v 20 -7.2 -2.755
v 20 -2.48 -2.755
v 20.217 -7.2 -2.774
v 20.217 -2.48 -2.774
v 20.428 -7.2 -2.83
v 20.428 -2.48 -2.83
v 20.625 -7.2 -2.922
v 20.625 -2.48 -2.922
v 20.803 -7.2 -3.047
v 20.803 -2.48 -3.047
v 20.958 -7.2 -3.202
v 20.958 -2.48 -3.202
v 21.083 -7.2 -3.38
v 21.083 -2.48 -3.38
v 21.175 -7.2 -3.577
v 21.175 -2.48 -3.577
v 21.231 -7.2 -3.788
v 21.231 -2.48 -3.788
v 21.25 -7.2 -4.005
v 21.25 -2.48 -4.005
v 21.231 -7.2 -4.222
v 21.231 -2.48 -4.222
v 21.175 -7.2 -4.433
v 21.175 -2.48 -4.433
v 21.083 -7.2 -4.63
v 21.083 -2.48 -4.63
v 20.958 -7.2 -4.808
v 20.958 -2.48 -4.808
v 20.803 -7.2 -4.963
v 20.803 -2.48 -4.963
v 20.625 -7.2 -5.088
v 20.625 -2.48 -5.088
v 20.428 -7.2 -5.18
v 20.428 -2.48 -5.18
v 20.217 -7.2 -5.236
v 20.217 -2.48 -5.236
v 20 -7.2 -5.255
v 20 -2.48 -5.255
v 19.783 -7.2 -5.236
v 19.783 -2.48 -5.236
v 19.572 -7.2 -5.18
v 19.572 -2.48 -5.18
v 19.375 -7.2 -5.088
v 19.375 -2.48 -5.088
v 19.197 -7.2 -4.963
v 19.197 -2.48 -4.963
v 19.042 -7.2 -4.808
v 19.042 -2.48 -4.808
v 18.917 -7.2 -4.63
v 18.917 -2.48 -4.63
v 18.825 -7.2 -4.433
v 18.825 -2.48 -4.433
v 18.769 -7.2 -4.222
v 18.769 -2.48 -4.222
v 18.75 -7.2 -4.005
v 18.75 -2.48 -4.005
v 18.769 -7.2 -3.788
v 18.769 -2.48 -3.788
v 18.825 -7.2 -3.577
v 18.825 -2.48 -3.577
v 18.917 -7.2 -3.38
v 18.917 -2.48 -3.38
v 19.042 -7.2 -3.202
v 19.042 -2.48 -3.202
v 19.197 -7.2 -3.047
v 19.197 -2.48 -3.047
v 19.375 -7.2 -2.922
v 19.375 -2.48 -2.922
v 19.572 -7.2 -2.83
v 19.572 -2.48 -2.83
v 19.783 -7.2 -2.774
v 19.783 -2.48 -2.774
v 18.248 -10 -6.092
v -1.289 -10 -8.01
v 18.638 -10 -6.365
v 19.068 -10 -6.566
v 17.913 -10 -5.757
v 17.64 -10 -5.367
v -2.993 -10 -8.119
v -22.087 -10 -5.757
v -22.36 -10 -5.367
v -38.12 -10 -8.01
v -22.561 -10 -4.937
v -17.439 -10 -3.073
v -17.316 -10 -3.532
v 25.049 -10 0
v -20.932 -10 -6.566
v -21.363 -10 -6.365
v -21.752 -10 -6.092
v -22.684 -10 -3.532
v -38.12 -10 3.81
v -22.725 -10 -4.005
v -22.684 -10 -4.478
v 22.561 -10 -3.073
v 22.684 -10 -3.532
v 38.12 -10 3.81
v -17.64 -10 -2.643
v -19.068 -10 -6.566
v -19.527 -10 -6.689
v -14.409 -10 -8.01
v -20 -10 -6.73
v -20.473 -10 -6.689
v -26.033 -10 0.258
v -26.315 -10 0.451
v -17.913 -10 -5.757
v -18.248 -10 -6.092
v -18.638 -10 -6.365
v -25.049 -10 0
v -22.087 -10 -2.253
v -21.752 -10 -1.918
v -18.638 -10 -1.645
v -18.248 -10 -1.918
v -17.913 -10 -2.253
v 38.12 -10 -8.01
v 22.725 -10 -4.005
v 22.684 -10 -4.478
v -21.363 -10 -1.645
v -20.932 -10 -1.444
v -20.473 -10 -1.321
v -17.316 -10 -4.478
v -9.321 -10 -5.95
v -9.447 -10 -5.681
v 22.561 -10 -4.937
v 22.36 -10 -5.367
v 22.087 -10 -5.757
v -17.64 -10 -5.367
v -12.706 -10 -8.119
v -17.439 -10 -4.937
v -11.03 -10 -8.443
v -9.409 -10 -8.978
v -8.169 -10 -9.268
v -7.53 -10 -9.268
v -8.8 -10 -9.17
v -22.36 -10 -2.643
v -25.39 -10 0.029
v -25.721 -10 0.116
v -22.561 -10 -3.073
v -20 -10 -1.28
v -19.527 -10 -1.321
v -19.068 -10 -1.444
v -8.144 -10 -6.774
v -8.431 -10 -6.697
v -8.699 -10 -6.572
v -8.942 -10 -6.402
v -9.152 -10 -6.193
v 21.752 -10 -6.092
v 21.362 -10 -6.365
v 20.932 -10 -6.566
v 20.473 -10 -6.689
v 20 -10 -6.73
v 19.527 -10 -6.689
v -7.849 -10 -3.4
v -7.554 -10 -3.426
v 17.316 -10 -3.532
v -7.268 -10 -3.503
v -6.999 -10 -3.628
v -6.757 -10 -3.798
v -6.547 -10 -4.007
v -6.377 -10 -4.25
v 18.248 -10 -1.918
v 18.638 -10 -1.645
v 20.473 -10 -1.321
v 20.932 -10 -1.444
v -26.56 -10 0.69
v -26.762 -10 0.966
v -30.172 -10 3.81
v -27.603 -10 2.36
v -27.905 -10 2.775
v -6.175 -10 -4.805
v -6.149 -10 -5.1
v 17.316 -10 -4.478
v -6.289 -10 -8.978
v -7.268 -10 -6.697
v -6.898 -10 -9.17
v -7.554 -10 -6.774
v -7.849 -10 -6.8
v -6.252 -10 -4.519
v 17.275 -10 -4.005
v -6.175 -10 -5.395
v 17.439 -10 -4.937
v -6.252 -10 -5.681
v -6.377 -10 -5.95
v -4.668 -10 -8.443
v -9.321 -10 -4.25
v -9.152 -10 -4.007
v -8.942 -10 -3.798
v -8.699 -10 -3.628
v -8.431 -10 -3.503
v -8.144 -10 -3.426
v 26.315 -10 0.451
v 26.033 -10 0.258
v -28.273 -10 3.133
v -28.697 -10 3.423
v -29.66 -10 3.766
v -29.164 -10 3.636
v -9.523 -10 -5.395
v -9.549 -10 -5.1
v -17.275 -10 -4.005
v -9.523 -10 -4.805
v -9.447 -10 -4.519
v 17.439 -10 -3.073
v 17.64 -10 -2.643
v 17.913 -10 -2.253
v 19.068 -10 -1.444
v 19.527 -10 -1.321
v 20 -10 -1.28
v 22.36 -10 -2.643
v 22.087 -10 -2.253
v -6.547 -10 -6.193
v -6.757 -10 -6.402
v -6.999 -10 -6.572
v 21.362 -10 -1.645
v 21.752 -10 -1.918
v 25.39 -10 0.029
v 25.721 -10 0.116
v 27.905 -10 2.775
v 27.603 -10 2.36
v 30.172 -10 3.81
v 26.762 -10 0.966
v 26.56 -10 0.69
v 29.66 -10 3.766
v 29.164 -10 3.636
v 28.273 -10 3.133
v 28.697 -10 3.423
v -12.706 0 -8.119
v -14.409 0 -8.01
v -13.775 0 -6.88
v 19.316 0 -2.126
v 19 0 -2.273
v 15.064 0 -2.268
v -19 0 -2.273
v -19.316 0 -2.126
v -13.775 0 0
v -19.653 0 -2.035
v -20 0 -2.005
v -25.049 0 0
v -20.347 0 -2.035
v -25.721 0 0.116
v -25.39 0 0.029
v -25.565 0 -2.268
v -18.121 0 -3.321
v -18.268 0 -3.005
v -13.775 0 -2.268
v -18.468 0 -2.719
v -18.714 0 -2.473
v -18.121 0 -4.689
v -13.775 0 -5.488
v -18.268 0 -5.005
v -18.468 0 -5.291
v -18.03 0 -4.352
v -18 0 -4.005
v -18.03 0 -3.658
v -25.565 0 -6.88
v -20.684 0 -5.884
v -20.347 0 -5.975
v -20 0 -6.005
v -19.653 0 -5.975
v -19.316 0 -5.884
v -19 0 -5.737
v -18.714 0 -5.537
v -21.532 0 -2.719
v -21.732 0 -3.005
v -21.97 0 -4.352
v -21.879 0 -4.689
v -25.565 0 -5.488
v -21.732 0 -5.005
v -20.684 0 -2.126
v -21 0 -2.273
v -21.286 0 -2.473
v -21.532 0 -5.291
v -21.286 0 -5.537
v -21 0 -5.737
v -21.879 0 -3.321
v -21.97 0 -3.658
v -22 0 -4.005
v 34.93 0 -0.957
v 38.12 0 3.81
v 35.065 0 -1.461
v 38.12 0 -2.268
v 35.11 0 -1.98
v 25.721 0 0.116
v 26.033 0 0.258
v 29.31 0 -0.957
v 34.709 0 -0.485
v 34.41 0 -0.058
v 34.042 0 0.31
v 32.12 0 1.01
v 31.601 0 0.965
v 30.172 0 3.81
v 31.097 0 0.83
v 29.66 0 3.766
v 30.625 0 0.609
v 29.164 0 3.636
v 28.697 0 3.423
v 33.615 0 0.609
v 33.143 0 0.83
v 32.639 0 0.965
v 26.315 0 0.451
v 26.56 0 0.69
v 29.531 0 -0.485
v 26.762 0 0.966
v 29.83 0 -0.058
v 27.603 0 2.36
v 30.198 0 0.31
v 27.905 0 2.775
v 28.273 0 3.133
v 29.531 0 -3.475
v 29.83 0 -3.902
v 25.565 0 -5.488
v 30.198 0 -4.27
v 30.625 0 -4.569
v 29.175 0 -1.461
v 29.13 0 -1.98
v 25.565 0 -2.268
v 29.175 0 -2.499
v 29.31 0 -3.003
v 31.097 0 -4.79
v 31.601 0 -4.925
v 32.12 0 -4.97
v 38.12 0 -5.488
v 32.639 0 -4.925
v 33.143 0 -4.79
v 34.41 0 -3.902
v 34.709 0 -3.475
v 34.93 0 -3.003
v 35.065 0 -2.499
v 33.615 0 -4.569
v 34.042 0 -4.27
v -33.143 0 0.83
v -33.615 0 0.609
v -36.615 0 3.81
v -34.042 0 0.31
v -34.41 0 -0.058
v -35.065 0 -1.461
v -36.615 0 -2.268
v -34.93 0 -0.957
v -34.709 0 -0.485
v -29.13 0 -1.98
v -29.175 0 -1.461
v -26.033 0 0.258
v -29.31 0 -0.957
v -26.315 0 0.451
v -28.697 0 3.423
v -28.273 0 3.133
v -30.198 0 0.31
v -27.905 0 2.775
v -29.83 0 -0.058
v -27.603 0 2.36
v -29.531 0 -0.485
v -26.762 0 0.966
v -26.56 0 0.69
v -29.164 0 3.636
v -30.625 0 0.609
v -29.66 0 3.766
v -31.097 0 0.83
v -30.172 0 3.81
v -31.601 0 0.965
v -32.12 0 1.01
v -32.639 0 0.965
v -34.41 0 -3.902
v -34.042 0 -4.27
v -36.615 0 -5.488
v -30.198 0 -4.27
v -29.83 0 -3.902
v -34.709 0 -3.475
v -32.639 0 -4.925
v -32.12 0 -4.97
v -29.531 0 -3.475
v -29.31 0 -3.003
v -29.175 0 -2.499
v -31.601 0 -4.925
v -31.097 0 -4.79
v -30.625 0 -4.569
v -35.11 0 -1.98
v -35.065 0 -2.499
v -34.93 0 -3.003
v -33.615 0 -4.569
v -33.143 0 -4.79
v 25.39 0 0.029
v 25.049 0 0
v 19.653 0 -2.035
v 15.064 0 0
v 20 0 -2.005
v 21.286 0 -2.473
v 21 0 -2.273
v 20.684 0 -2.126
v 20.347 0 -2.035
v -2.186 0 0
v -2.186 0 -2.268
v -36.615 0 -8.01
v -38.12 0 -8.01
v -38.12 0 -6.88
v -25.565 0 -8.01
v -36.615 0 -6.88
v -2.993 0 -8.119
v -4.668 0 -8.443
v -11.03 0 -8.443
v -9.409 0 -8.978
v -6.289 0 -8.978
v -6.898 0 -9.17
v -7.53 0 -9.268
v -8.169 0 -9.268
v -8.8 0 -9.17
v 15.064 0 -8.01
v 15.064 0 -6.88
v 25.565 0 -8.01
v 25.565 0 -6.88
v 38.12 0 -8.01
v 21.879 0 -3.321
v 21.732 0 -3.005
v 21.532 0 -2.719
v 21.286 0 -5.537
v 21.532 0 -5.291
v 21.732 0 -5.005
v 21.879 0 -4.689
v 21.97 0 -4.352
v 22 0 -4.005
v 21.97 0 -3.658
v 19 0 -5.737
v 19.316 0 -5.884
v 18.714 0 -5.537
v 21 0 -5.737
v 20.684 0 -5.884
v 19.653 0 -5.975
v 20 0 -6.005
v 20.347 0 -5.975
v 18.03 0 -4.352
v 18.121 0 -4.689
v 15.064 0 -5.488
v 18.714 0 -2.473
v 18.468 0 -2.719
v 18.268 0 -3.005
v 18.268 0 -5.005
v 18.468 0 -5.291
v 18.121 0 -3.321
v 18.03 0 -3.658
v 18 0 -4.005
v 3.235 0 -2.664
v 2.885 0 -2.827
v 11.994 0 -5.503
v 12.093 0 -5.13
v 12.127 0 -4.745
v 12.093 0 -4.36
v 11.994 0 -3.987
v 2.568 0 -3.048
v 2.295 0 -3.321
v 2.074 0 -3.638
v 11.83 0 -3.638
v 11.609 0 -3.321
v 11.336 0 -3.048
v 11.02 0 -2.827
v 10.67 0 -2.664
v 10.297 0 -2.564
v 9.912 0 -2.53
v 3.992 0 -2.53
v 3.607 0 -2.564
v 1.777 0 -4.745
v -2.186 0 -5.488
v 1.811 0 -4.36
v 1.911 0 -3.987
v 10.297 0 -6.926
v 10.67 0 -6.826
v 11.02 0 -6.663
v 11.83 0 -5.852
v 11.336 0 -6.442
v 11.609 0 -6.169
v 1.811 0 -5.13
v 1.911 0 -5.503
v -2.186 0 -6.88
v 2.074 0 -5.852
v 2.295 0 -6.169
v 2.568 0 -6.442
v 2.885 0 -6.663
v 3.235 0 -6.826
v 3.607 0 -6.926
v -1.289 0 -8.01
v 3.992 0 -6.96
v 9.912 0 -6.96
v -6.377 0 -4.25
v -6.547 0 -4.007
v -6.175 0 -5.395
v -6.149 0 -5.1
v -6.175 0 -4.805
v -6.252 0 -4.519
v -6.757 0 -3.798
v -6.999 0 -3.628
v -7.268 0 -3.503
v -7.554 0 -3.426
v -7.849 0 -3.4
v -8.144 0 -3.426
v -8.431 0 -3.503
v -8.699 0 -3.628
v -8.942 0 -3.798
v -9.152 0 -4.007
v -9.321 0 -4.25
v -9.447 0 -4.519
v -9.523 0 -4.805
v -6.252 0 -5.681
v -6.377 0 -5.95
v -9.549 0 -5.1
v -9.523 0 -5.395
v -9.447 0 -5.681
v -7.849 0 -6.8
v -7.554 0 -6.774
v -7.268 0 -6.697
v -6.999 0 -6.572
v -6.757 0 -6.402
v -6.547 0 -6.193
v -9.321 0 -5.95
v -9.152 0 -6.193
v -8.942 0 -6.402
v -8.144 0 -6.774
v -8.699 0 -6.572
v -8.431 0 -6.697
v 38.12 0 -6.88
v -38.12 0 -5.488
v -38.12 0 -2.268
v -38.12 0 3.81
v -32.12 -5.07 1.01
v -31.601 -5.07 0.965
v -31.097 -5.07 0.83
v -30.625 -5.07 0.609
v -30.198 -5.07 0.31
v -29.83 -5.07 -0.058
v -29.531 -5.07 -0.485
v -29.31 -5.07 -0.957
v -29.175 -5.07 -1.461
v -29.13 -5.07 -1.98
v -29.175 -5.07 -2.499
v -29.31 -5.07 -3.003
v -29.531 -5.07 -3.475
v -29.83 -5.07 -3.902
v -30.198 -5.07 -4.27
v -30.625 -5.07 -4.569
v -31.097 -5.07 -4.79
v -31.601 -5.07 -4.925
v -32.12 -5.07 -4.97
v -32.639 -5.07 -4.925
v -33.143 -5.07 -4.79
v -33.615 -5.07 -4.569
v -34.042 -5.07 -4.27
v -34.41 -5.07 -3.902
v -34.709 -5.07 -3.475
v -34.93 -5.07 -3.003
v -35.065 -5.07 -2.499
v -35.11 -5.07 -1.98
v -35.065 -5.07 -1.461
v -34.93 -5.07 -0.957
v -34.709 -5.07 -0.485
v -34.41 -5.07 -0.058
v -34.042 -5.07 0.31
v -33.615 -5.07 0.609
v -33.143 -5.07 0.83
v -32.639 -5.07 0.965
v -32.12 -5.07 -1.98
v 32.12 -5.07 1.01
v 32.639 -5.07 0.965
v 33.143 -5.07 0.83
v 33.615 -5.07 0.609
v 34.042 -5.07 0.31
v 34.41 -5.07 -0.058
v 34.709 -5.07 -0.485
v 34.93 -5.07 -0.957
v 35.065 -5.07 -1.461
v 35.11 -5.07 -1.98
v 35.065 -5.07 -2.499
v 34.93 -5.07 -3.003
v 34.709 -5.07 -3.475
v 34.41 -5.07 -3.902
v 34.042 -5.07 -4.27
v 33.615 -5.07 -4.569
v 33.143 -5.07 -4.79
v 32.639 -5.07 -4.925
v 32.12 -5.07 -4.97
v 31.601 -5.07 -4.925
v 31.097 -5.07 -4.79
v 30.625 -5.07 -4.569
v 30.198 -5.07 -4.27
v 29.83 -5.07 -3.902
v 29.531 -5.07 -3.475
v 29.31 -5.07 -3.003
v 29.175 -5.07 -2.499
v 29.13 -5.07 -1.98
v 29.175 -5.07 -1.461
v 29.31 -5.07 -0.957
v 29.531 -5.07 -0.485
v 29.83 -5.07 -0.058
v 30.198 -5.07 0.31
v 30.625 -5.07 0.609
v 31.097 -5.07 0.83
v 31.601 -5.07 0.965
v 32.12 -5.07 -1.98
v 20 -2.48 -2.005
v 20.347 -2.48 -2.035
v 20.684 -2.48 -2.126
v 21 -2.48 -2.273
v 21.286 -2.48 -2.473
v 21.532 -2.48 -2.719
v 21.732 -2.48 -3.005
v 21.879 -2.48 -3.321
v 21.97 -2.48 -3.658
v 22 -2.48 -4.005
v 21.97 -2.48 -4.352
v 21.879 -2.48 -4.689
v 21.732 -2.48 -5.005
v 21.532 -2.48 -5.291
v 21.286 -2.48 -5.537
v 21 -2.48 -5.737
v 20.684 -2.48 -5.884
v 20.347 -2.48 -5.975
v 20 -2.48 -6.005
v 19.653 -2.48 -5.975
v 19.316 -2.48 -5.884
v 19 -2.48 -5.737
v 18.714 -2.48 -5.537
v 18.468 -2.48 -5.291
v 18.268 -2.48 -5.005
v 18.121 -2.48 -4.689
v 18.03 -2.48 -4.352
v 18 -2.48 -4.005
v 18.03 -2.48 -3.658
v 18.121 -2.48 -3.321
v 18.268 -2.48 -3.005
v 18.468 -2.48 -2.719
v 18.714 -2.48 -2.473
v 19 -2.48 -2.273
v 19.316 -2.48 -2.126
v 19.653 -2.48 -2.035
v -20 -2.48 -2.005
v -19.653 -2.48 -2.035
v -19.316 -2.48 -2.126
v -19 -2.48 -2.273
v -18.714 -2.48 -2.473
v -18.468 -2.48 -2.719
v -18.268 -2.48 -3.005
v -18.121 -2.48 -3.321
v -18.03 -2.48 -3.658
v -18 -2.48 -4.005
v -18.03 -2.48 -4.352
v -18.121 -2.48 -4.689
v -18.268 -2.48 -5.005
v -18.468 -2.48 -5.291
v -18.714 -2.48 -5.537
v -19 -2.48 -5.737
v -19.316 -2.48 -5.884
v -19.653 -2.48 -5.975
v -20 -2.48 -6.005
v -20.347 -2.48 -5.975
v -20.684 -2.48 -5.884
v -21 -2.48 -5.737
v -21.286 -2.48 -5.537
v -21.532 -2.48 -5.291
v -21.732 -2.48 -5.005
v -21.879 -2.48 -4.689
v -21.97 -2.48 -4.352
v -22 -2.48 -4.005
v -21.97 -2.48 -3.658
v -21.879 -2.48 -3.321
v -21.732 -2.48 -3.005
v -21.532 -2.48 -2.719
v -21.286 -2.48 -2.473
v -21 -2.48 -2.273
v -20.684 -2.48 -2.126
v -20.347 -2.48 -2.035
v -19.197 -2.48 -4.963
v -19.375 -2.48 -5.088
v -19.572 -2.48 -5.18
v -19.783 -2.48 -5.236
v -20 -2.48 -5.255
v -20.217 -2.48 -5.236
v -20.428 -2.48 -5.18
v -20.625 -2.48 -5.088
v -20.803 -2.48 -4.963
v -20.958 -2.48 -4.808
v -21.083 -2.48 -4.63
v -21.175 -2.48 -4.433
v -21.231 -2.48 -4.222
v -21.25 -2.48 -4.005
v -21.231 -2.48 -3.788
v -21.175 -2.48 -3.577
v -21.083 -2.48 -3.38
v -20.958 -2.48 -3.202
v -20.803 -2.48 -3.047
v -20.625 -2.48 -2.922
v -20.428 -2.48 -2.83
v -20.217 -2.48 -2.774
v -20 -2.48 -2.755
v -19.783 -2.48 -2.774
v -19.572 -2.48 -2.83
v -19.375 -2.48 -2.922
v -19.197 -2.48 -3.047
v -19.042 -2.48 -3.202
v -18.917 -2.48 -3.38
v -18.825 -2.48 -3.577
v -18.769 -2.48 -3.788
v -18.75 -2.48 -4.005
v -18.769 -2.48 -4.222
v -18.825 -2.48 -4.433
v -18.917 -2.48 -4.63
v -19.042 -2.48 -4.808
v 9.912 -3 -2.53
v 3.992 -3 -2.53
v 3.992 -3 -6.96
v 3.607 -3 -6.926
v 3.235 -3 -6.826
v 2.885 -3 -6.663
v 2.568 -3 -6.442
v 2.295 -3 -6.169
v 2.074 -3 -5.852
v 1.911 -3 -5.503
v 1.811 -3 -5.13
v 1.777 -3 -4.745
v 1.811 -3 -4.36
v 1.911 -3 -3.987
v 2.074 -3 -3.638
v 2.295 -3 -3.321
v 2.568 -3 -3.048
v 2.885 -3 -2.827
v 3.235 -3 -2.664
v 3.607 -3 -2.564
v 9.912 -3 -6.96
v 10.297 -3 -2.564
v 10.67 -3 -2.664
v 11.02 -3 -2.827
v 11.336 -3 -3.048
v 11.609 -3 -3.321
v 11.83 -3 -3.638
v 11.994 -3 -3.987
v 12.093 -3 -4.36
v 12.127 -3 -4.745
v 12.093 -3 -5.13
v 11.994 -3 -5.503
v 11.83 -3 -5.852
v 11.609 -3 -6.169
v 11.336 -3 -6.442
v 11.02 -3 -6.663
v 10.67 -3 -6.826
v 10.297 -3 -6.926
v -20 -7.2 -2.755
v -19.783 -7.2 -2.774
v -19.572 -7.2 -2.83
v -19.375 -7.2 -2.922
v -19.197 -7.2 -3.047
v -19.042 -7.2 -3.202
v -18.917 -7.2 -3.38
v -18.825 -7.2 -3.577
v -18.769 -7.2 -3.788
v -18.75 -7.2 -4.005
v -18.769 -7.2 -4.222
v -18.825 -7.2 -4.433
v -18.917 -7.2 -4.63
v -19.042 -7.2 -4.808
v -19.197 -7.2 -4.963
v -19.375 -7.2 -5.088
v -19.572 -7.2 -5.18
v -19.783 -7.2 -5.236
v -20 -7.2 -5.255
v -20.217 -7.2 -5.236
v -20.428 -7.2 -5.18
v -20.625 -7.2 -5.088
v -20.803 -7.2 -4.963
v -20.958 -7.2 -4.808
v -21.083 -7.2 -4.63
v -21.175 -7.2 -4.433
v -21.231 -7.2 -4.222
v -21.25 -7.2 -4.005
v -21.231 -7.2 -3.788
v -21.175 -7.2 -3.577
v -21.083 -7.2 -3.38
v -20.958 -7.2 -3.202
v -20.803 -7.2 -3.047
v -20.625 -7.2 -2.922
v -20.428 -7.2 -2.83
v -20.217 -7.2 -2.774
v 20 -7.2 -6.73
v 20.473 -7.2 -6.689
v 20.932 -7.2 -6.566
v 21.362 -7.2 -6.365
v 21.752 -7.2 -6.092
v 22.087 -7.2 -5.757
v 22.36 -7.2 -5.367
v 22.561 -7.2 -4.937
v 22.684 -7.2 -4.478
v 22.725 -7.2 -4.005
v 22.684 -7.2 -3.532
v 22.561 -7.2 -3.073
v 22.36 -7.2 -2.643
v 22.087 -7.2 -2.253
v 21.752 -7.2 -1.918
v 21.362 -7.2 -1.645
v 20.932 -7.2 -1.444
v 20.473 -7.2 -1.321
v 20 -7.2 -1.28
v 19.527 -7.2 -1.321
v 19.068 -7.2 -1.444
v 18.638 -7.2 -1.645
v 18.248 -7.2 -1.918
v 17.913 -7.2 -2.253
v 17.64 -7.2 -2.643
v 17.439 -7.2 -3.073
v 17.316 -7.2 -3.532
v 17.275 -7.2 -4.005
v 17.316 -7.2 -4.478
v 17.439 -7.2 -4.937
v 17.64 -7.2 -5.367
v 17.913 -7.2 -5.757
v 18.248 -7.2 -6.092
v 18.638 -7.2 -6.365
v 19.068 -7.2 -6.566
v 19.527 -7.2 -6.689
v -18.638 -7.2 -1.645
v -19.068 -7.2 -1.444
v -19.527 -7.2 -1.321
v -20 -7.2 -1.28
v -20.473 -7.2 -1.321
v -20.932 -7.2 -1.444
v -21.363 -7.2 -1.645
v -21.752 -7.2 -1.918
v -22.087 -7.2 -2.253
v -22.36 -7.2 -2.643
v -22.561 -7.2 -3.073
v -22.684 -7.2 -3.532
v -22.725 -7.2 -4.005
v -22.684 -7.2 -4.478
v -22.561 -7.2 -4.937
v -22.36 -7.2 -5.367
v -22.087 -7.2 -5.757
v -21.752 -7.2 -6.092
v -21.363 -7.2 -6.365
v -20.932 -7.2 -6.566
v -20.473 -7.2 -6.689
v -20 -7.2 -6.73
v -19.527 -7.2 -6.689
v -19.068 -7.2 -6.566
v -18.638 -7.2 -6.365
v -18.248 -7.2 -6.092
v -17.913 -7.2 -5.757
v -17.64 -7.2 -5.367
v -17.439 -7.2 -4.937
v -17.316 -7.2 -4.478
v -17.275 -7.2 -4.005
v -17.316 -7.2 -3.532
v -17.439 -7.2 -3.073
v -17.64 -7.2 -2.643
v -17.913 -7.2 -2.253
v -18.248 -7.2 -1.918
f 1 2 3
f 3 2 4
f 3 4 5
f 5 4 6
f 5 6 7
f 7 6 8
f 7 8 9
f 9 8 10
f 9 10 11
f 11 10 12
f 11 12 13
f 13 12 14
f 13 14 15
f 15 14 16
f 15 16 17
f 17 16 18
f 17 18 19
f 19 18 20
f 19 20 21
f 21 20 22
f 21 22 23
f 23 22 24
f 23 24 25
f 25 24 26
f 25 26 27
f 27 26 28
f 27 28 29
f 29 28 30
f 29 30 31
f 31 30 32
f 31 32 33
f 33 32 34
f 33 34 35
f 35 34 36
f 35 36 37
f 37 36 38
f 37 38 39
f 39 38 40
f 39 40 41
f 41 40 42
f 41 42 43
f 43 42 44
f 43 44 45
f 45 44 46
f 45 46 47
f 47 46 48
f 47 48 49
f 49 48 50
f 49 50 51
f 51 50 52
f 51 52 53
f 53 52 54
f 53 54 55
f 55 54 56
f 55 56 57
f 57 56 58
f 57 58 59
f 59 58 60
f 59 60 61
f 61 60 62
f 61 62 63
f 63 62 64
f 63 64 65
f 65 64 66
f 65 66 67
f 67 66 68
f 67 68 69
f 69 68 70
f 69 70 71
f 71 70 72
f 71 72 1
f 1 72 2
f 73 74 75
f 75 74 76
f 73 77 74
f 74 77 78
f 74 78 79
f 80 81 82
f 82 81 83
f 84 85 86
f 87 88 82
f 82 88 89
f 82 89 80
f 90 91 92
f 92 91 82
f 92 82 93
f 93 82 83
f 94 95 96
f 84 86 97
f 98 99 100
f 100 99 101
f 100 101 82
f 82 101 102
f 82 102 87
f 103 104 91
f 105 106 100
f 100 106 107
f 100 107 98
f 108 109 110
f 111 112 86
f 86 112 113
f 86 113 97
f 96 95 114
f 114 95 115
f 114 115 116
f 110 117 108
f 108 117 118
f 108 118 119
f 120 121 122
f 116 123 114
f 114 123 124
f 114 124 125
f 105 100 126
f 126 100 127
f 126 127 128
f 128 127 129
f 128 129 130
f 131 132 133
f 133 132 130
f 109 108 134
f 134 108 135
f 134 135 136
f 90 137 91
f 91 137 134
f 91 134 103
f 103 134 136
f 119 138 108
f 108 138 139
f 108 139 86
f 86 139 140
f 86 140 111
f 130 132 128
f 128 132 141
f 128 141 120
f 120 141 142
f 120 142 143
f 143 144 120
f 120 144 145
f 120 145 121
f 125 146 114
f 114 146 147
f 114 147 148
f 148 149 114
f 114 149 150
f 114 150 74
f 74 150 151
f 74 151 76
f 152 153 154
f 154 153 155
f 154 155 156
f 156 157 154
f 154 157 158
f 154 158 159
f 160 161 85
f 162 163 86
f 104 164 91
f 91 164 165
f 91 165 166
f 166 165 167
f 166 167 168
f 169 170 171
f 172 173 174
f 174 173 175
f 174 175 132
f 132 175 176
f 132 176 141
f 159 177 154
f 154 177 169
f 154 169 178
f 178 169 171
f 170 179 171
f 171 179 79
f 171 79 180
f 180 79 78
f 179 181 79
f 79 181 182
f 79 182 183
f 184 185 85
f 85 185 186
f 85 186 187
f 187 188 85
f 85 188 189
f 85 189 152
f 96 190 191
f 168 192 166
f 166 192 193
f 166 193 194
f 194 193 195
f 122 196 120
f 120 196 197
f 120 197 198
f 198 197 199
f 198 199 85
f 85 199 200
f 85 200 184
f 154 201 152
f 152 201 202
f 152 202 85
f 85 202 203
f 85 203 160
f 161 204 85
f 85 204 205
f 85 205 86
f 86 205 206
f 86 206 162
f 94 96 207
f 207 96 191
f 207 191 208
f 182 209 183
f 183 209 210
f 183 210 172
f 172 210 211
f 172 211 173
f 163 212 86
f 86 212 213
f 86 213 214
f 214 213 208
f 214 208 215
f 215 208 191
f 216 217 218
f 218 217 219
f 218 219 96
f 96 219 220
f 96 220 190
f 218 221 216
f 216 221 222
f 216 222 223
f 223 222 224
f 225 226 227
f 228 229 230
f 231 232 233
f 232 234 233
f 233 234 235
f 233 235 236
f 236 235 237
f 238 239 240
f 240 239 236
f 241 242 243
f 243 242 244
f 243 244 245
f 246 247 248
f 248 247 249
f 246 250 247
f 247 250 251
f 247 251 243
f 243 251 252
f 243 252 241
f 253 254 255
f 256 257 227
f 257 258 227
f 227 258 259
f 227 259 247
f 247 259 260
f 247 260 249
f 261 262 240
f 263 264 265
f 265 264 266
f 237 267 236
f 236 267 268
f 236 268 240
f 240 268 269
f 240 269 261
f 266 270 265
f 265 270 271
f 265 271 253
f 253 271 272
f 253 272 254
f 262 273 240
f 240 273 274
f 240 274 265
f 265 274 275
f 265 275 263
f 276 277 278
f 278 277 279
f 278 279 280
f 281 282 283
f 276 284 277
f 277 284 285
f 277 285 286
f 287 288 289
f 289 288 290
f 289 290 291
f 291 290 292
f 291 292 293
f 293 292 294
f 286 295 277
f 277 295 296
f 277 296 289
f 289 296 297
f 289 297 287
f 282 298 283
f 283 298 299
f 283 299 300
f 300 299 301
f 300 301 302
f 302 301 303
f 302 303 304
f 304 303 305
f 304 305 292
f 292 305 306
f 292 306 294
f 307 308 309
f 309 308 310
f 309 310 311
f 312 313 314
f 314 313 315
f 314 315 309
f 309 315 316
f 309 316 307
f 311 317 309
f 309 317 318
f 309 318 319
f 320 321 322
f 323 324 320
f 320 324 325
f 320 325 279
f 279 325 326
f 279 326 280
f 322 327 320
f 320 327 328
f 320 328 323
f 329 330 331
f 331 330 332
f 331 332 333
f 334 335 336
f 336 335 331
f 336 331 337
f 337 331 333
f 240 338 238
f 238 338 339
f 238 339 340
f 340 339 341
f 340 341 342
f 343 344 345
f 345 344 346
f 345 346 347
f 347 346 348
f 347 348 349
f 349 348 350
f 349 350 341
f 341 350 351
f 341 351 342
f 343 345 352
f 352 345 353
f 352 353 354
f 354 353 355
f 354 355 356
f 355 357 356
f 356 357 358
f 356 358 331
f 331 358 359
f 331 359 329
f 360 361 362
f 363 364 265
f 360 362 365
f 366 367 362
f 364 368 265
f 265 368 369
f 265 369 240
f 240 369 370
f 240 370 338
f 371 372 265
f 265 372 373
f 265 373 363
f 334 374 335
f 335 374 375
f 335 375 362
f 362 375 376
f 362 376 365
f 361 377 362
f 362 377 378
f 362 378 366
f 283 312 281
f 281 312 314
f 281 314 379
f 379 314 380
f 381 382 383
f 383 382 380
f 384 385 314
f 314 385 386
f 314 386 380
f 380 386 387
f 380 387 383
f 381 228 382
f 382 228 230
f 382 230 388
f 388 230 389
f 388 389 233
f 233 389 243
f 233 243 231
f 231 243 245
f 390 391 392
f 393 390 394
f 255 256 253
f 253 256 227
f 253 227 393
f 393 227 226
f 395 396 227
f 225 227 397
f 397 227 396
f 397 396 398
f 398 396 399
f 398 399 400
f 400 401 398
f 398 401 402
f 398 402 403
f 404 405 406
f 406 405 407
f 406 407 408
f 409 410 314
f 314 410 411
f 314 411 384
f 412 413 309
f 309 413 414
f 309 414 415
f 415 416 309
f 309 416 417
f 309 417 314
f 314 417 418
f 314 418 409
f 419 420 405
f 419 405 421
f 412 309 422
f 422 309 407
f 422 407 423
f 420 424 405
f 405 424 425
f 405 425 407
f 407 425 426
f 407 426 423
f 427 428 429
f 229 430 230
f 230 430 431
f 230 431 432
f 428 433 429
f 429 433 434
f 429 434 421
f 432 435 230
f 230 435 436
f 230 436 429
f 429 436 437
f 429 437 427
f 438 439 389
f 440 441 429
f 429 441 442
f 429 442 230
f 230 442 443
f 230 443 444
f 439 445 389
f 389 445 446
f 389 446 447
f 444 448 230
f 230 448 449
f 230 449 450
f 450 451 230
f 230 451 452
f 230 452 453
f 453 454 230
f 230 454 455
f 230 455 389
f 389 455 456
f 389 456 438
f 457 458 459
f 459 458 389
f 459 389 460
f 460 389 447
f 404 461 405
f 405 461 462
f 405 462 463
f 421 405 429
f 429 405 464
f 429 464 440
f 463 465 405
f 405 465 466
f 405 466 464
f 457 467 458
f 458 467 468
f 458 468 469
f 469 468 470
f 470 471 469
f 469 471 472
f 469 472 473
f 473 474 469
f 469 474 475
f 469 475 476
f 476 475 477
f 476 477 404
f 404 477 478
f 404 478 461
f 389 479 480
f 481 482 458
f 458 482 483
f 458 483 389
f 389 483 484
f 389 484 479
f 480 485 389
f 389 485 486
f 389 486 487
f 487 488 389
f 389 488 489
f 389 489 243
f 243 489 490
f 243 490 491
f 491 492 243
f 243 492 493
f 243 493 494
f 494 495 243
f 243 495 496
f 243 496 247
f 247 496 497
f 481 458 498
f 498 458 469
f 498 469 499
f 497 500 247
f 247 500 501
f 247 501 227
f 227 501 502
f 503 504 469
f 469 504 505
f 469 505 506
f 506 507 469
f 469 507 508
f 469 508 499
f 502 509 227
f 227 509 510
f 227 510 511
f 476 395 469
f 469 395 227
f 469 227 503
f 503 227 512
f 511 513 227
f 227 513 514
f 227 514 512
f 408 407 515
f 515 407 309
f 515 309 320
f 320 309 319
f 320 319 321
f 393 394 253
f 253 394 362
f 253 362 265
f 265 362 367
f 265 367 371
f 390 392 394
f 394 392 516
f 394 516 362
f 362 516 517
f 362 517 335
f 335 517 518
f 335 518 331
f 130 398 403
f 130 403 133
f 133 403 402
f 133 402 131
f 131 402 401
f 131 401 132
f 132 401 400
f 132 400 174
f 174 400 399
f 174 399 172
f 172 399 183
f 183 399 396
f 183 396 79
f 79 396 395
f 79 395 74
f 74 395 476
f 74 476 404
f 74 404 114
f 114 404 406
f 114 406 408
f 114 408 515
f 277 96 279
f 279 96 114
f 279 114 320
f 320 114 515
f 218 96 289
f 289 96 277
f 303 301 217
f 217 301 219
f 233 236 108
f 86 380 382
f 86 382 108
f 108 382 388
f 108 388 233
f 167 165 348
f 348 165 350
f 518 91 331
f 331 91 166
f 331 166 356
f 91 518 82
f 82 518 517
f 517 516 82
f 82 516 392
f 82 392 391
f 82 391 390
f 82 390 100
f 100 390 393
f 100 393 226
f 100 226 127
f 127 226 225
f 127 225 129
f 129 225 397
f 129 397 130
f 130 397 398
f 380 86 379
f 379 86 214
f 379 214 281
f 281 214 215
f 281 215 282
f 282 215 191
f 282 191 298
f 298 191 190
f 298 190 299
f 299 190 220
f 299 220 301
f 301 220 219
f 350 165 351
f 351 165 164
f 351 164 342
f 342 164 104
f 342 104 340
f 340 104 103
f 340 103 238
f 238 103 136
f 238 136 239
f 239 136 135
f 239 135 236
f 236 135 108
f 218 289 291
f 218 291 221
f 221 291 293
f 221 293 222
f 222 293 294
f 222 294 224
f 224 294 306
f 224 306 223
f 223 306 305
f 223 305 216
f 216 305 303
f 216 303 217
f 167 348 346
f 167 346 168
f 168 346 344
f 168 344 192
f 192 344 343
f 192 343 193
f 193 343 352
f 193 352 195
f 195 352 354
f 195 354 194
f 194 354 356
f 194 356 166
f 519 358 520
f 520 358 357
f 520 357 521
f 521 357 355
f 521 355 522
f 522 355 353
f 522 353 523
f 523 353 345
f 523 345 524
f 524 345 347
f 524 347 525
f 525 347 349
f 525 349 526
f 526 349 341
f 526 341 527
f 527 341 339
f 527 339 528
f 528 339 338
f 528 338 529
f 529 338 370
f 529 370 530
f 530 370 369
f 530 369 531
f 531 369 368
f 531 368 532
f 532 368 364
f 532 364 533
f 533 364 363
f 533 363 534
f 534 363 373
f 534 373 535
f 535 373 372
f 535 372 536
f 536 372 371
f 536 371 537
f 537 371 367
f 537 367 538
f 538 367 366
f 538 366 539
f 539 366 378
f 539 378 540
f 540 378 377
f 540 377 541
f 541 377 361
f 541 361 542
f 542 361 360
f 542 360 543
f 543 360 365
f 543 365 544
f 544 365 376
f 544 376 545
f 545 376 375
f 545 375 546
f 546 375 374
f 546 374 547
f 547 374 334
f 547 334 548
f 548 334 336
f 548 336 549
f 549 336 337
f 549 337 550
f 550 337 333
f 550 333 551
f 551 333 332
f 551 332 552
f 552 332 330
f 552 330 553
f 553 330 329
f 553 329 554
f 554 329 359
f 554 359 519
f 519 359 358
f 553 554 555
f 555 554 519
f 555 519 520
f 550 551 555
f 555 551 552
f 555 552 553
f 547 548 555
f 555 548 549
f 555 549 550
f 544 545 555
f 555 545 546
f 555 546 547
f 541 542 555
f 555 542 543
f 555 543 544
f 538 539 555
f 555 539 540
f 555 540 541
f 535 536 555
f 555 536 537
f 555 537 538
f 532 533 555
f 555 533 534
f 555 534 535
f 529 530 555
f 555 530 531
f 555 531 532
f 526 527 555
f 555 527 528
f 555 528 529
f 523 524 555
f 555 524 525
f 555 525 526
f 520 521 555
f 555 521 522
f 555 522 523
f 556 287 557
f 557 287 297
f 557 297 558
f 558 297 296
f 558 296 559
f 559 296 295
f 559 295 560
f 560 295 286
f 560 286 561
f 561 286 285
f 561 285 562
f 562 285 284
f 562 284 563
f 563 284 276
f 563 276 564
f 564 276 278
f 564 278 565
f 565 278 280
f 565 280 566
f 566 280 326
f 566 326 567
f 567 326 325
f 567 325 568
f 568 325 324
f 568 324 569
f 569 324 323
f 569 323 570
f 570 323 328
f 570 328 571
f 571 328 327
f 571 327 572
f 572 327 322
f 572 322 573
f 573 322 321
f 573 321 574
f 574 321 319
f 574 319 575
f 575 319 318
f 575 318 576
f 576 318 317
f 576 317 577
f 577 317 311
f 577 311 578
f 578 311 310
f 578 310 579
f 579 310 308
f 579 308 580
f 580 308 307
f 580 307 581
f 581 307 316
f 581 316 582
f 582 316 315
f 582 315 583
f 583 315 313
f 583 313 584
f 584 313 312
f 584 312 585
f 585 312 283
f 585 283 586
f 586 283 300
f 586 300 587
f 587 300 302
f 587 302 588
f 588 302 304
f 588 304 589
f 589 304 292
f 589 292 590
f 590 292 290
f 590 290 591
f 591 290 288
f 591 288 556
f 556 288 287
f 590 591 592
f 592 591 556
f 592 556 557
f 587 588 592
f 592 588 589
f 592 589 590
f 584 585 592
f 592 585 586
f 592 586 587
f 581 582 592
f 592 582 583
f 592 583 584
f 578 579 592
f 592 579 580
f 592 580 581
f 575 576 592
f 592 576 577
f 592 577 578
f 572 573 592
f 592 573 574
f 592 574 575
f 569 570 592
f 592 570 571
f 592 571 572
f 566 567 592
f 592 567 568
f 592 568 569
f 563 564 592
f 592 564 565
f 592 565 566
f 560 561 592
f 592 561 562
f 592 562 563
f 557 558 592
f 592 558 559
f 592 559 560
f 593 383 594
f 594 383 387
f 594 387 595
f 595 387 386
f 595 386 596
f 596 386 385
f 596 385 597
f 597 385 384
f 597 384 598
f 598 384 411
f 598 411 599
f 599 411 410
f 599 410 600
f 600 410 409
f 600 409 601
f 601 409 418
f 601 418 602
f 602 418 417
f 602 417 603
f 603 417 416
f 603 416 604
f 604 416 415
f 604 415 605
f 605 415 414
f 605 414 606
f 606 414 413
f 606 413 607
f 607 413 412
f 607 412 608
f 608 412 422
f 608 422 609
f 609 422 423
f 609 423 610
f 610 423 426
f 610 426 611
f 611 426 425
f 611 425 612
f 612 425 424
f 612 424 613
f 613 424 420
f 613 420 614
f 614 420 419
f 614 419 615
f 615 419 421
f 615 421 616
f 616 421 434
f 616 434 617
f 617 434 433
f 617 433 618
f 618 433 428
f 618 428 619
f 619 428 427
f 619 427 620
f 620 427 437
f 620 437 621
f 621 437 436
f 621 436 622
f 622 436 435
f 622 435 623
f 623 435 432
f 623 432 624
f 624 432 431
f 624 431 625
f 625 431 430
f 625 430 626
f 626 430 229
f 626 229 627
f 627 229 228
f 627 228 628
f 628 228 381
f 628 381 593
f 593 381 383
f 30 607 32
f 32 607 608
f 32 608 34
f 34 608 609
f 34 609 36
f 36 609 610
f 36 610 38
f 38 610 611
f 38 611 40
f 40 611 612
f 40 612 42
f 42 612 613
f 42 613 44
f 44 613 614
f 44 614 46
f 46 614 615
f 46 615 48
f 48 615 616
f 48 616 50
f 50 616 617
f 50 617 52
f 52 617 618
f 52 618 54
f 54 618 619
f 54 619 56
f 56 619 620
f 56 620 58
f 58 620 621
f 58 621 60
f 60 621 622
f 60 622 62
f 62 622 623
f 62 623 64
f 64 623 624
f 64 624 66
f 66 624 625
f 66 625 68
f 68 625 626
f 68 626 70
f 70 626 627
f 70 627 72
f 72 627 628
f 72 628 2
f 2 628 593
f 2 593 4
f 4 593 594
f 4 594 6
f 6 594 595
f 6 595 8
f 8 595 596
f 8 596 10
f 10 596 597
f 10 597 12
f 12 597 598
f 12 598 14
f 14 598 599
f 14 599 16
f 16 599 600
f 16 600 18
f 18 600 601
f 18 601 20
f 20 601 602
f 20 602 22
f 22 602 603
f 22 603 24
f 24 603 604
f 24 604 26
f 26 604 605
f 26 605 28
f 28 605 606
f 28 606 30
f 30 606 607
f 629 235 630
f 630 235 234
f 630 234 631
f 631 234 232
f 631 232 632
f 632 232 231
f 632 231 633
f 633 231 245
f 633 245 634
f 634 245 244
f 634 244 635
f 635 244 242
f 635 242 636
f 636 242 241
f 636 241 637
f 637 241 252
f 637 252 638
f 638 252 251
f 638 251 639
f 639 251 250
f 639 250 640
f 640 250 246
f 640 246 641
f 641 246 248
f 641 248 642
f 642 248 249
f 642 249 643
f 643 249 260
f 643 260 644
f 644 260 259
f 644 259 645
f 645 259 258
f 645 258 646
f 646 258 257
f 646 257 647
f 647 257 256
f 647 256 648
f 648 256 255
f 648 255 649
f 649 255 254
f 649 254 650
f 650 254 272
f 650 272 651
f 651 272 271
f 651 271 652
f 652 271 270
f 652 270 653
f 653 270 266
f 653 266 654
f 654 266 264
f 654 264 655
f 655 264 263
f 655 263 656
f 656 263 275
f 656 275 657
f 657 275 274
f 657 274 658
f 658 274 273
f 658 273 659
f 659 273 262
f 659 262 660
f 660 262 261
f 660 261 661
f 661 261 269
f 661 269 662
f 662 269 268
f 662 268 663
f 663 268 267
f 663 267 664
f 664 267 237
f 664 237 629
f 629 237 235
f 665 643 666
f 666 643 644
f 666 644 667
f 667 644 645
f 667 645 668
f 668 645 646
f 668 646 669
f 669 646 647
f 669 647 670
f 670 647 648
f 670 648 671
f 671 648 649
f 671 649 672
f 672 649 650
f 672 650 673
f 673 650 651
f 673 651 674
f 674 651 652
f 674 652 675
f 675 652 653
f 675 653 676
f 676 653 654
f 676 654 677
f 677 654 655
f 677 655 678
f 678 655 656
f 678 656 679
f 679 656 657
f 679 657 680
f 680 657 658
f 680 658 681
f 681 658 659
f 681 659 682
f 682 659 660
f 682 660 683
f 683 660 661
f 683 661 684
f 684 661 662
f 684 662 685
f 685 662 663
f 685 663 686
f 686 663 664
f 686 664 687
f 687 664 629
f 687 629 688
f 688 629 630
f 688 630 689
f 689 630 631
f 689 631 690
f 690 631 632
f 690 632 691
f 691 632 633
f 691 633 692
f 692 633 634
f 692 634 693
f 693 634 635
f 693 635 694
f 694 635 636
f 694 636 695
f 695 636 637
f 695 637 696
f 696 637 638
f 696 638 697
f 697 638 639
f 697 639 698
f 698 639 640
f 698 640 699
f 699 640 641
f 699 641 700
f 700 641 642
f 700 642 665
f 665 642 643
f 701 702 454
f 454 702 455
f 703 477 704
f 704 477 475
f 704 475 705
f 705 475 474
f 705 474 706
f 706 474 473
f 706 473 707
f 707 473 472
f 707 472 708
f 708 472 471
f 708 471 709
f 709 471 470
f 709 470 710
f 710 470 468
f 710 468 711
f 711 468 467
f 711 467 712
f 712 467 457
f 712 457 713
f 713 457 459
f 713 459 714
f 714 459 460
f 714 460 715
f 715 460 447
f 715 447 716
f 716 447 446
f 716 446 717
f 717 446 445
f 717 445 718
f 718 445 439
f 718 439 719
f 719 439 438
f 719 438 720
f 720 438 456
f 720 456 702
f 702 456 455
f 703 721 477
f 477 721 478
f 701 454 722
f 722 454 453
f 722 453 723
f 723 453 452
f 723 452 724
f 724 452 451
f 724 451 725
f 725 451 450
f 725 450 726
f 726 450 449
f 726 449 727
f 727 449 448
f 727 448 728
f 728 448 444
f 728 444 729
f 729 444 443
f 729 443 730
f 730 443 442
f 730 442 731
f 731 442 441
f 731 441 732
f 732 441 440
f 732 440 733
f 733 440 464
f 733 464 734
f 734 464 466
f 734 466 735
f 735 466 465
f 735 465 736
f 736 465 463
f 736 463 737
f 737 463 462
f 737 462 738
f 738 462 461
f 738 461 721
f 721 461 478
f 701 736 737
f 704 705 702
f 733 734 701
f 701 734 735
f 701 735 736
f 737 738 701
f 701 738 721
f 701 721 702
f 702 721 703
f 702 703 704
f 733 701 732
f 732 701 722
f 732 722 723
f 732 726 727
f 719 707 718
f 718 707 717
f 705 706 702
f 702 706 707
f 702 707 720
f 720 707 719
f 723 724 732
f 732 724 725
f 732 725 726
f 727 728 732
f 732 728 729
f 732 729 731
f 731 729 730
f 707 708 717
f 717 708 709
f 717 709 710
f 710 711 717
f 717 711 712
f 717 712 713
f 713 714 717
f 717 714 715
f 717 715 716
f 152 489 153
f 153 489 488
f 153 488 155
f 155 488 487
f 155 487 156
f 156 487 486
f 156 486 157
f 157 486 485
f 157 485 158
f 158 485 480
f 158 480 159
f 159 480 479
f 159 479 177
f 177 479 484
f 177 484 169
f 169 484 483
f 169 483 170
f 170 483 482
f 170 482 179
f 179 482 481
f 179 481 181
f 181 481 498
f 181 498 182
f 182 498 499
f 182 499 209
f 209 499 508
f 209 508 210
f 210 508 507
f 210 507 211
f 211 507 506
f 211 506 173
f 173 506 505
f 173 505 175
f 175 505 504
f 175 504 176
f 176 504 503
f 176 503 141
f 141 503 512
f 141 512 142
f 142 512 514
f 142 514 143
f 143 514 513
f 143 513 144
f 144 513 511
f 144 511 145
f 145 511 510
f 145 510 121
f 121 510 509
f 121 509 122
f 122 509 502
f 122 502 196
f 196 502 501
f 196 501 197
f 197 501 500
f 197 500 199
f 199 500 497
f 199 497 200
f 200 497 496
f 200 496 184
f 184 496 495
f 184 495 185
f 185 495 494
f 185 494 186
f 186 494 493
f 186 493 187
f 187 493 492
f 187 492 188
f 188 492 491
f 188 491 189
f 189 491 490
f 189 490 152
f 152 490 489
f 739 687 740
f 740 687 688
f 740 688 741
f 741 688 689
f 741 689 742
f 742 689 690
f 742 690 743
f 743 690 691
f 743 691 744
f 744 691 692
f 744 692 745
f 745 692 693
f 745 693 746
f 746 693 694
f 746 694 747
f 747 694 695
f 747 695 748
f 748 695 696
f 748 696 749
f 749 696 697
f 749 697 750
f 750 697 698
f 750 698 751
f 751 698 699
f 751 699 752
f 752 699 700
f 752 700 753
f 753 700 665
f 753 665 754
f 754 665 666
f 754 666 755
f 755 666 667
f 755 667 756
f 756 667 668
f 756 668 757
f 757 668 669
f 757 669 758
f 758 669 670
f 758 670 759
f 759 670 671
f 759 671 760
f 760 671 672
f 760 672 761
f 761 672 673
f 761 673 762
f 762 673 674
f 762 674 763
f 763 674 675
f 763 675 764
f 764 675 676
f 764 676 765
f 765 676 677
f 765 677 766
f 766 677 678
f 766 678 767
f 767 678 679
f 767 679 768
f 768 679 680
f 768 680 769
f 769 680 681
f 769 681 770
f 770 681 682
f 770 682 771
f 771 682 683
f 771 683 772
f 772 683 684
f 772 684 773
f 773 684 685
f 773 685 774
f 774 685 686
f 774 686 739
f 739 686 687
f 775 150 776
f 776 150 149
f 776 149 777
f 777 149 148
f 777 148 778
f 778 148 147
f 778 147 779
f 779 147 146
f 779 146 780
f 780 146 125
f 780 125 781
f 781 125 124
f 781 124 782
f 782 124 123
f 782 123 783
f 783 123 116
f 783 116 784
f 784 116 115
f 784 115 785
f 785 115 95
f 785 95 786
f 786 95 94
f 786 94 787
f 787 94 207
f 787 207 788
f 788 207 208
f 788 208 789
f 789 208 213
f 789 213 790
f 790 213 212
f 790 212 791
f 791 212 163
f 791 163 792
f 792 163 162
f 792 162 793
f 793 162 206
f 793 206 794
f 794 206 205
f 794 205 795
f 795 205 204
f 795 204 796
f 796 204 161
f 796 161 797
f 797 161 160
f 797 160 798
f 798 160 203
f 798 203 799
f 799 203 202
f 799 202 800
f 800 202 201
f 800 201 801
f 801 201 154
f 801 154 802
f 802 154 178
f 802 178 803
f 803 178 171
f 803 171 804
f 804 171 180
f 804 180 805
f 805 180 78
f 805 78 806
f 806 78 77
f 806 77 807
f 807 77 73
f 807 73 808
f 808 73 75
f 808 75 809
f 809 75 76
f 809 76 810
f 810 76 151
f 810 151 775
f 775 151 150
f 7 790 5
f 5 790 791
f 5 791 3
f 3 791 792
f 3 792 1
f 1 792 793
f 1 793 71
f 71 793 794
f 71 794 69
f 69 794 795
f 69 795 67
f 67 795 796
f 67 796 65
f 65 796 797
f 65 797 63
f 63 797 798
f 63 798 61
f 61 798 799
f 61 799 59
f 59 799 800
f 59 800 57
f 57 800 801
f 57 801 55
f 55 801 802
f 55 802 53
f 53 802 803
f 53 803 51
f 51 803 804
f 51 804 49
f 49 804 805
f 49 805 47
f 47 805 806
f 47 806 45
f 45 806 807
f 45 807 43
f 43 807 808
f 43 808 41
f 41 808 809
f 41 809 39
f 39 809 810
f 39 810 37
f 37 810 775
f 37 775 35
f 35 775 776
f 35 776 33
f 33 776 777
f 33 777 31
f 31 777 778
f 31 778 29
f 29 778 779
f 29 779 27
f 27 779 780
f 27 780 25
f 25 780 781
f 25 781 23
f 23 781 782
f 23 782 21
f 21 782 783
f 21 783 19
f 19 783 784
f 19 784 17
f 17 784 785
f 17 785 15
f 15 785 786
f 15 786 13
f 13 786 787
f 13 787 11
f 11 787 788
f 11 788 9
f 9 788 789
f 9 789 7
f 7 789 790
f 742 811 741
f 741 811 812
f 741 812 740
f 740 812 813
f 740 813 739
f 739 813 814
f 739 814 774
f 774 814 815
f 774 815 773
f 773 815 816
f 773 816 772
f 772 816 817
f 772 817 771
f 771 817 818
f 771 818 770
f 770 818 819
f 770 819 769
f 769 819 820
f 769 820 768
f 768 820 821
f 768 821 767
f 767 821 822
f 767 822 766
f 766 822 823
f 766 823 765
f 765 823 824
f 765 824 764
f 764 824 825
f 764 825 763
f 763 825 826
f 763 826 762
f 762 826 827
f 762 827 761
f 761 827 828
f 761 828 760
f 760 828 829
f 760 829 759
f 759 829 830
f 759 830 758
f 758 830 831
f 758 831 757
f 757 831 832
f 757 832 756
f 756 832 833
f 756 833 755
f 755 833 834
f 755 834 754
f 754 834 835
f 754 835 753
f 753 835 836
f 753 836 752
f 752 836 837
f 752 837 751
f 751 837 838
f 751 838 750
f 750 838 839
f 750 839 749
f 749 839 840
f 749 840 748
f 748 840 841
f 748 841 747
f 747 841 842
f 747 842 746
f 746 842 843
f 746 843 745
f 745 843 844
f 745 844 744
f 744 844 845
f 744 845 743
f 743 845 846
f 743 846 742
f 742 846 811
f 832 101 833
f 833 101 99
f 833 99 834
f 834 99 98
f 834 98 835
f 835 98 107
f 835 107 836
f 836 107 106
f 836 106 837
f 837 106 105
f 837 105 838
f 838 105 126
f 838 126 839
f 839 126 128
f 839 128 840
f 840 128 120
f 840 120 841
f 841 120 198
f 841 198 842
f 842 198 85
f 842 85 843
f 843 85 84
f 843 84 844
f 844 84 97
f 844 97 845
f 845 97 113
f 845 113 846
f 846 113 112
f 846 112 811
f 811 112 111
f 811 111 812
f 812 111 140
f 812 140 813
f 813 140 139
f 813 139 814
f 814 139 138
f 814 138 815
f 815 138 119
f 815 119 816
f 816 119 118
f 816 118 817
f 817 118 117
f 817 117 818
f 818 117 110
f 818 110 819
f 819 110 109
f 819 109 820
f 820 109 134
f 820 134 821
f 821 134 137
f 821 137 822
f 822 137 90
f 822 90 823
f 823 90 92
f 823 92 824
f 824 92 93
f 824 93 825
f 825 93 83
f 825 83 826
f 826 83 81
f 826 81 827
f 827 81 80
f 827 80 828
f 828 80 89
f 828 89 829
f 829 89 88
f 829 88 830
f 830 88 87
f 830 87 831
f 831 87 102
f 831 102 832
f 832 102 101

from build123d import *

# Parameters (mm, degrees)
SKETCH1_R           = 2
SKETCH1_R_2         = 2.99
SKETCH1_R_3         = 1.7
BOSS_EXTRUDE1_DEPTH = 10
FILLET1_R           = 2
FILLET2_R           = 3
SKETCH1_4_R         = 2.99
CUT_EXTRUDE3_DEPTH  = 5.07
SKETCH1_5_R         = 2
CUT_EXTRUDE4_DEPTH  = 2.48
CUT_EXTRUDE5_DEPTH  = 3
SKETCH1_7_R         = 1.7
CUT_EXTRUDE6_DEPTH  = 10
SKETCH4_R           = 1.25
CUT_EXTRUDE7_DEPTH  = 10
SKETCH5_R           = 2.725
CUT_EXTRUDE8_DEPTH  = 2.8


with BuildPart() as part:
    # Sketch1 → Boss-Extrude1 (new body)
    with BuildSketch(Plane(origin=(0, 0, 0), x_dir=(1, 0, 0), z_dir=(0, 1, 0))):
        with BuildLine():
            ThreePointArc((-9.409245094, 8.977987014), (-7.849239736, 9.28), (-6.289234378, 8.977987014))
            ThreePointArc((-6.289234378, 8.977987014), (-3.835653376, 8.254222737), (-1.289234378, 8.01))
            Line((-1.289234378, 8.01), (38.12, 8.01))
            Line((38.12, 8.01), (38.12, -3.81))
            Line((38.12, -3.81), (28.478275237, -3.81))
            Line((28.478275237, -3.81), (26.178275237, 0))
            Line((26.178275237, 0), (-26.178275237, 0))
            Line((-26.178275237, 0), (-28.478275237, -3.81))
            Line((-28.478275237, -3.81), (-38.12, -3.81))
            Line((-38.12, -3.81), (-38.12, 8.01))
            Line((-38.12, 8.01), (-14.409245094, 8.01))
            ThreePointArc((-14.409245094, 8.01), (-11.862826096, 8.254222737), (-9.409245094, 8.977987014))
        make_face()
        with Locations((20, 4.005)):
            Circle(SKETCH1_R, mode=Mode.SUBTRACT)
        with Locations((-20, 4.005)):
            Circle(SKETCH1_R, mode=Mode.SUBTRACT)
        with Locations((-32.12, 1.98)):
            Circle(SKETCH1_R_2, mode=Mode.SUBTRACT)
        with Locations((32.12, 1.98)):
            Circle(SKETCH1_R_2, mode=Mode.SUBTRACT)
        with Locations((-7.849239736, 5.1)):
            Circle(SKETCH1_R_3, mode=Mode.SUBTRACT)
        with BuildLine():
            ThreePointArc((9.912105026, 2.53), (12.127105026, 4.745), (9.912105026, 6.96))
            Line((9.912105026, 6.96), (3.992105026, 6.96))
            ThreePointArc((3.992105026, 6.96), (1.777105026, 4.745), (3.992105026, 2.53))
            Line((3.992105026, 2.53), (9.912105026, 2.53))
        make_face(mode=Mode.SUBTRACT)
        with Locations((-20, 4.005)):
            Circle(SKETCH1_R)
        with Locations((-7.849239736, 5.1)):
            Circle(SKETCH1_R_3)
        with Locations((-32.12, 1.98)):
            Circle(SKETCH1_R_2)
        with BuildLine():
            Line((3.992105026, 2.53), (9.912105026, 2.53))
            ThreePointArc((9.912105026, 2.53), (12.127105026, 4.745), (9.912105026, 6.96))
            Line((9.912105026, 6.96), (3.992105026, 6.96))
            ThreePointArc((3.992105026, 6.96), (1.777105026, 4.745), (3.992105026, 2.53))
        make_face()
        with Locations((20, 4.005)):
            Circle(SKETCH1_R)
        with Locations((32.12, 1.98)):
            Circle(SKETCH1_R_2)
    extrude(amount=-BOSS_EXTRUDE1_DEPTH)

    # Fillet1
    fillet1_edges = [part.edges().sort_by_distance(p)[0] for p in [
        (26.178275237, -5, 0),
        (-26.178275237, -5, 0),
    ]]
    fillet(fillet1_edges, radius=FILLET1_R)

    # Fillet2
    fillet2_edges = [part.edges().sort_by_distance(p)[0] for p in [
        (28.478275237, -5, 3.81),
        (-28.478275237, -5, 3.81),
    ]]
    fillet(fillet2_edges, radius=FILLET2_R)

    # Sketch1<4> → Cut-Extrude3 (cut)
    with BuildSketch(Plane(origin=(0, 0, 0), x_dir=(1, 0, 0), z_dir=(0, 1, 0))):
        with Locations((32.12, 1.98)):
            Circle(SKETCH1_4_R)
        with Locations((-32.12, 1.98)):
            Circle(SKETCH1_4_R)
    extrude(amount=-CUT_EXTRUDE3_DEPTH, mode=Mode.SUBTRACT)

    # Sketch1<5> → Cut-Extrude4 (cut)
    with BuildSketch(Plane(origin=(0, 0, 0), x_dir=(1, 0, 0), z_dir=(0, 1, 0))):
        with Locations((-20, 4.005)):
            Circle(SKETCH1_5_R)
        with Locations((20, 4.005)):
            Circle(SKETCH1_5_R)
    extrude(amount=-CUT_EXTRUDE4_DEPTH, mode=Mode.SUBTRACT)

    # Sketch1<6> → Cut-Extrude5 (cut)
    with BuildSketch(Plane(origin=(0, 0, 0), x_dir=(1, 0, 0), z_dir=(0, 1, 0))):
        with BuildLine():
            Line((3.992105026, 2.53), (9.912105026, 2.53))
            ThreePointArc((9.912105026, 2.53), (12.127105026, 4.745), (9.912105026, 6.96))
            Line((9.912105026, 6.96), (3.992105026, 6.96))
            ThreePointArc((3.992105026, 6.96), (1.777105026, 4.745), (3.992105026, 2.53))
        make_face()
    extrude(amount=-CUT_EXTRUDE5_DEPTH, mode=Mode.SUBTRACT)

    # Sketch1<7> → Cut-Extrude6 (cut)
    with BuildSketch(Plane(origin=(0, 0, 0), x_dir=(1, 0, 0), z_dir=(0, 1, 0))):
        with Locations((-7.849239736, 5.1)):
            Circle(SKETCH1_7_R)
    extrude(amount=-CUT_EXTRUDE6_DEPTH, mode=Mode.SUBTRACT)

    # Sketch4 → Cut-Extrude7 (cut)
    with BuildSketch(Plane(origin=(0, 0, 0), x_dir=(1, 0, 0), z_dir=(0, 1, 0))):
        with Locations((-20, 4.005)):
            Circle(SKETCH4_R)
        with Locations((20, 4.005)):
            Circle(SKETCH4_R)
    extrude(amount=-CUT_EXTRUDE7_DEPTH, mode=Mode.SUBTRACT)

    # Sketch5 → Cut-Extrude8 (cut)
    with BuildSketch(Plane.XZ.offset(10)):
        with Locations((20, -4.005)):
            Circle(SKETCH5_R)
        with Locations((-20, -4.005)):
            Circle(SKETCH5_R)
    extrude(amount=-CUT_EXTRUDE8_DEPTH, mode=Mode.SUBTRACT)


solid = part.part
